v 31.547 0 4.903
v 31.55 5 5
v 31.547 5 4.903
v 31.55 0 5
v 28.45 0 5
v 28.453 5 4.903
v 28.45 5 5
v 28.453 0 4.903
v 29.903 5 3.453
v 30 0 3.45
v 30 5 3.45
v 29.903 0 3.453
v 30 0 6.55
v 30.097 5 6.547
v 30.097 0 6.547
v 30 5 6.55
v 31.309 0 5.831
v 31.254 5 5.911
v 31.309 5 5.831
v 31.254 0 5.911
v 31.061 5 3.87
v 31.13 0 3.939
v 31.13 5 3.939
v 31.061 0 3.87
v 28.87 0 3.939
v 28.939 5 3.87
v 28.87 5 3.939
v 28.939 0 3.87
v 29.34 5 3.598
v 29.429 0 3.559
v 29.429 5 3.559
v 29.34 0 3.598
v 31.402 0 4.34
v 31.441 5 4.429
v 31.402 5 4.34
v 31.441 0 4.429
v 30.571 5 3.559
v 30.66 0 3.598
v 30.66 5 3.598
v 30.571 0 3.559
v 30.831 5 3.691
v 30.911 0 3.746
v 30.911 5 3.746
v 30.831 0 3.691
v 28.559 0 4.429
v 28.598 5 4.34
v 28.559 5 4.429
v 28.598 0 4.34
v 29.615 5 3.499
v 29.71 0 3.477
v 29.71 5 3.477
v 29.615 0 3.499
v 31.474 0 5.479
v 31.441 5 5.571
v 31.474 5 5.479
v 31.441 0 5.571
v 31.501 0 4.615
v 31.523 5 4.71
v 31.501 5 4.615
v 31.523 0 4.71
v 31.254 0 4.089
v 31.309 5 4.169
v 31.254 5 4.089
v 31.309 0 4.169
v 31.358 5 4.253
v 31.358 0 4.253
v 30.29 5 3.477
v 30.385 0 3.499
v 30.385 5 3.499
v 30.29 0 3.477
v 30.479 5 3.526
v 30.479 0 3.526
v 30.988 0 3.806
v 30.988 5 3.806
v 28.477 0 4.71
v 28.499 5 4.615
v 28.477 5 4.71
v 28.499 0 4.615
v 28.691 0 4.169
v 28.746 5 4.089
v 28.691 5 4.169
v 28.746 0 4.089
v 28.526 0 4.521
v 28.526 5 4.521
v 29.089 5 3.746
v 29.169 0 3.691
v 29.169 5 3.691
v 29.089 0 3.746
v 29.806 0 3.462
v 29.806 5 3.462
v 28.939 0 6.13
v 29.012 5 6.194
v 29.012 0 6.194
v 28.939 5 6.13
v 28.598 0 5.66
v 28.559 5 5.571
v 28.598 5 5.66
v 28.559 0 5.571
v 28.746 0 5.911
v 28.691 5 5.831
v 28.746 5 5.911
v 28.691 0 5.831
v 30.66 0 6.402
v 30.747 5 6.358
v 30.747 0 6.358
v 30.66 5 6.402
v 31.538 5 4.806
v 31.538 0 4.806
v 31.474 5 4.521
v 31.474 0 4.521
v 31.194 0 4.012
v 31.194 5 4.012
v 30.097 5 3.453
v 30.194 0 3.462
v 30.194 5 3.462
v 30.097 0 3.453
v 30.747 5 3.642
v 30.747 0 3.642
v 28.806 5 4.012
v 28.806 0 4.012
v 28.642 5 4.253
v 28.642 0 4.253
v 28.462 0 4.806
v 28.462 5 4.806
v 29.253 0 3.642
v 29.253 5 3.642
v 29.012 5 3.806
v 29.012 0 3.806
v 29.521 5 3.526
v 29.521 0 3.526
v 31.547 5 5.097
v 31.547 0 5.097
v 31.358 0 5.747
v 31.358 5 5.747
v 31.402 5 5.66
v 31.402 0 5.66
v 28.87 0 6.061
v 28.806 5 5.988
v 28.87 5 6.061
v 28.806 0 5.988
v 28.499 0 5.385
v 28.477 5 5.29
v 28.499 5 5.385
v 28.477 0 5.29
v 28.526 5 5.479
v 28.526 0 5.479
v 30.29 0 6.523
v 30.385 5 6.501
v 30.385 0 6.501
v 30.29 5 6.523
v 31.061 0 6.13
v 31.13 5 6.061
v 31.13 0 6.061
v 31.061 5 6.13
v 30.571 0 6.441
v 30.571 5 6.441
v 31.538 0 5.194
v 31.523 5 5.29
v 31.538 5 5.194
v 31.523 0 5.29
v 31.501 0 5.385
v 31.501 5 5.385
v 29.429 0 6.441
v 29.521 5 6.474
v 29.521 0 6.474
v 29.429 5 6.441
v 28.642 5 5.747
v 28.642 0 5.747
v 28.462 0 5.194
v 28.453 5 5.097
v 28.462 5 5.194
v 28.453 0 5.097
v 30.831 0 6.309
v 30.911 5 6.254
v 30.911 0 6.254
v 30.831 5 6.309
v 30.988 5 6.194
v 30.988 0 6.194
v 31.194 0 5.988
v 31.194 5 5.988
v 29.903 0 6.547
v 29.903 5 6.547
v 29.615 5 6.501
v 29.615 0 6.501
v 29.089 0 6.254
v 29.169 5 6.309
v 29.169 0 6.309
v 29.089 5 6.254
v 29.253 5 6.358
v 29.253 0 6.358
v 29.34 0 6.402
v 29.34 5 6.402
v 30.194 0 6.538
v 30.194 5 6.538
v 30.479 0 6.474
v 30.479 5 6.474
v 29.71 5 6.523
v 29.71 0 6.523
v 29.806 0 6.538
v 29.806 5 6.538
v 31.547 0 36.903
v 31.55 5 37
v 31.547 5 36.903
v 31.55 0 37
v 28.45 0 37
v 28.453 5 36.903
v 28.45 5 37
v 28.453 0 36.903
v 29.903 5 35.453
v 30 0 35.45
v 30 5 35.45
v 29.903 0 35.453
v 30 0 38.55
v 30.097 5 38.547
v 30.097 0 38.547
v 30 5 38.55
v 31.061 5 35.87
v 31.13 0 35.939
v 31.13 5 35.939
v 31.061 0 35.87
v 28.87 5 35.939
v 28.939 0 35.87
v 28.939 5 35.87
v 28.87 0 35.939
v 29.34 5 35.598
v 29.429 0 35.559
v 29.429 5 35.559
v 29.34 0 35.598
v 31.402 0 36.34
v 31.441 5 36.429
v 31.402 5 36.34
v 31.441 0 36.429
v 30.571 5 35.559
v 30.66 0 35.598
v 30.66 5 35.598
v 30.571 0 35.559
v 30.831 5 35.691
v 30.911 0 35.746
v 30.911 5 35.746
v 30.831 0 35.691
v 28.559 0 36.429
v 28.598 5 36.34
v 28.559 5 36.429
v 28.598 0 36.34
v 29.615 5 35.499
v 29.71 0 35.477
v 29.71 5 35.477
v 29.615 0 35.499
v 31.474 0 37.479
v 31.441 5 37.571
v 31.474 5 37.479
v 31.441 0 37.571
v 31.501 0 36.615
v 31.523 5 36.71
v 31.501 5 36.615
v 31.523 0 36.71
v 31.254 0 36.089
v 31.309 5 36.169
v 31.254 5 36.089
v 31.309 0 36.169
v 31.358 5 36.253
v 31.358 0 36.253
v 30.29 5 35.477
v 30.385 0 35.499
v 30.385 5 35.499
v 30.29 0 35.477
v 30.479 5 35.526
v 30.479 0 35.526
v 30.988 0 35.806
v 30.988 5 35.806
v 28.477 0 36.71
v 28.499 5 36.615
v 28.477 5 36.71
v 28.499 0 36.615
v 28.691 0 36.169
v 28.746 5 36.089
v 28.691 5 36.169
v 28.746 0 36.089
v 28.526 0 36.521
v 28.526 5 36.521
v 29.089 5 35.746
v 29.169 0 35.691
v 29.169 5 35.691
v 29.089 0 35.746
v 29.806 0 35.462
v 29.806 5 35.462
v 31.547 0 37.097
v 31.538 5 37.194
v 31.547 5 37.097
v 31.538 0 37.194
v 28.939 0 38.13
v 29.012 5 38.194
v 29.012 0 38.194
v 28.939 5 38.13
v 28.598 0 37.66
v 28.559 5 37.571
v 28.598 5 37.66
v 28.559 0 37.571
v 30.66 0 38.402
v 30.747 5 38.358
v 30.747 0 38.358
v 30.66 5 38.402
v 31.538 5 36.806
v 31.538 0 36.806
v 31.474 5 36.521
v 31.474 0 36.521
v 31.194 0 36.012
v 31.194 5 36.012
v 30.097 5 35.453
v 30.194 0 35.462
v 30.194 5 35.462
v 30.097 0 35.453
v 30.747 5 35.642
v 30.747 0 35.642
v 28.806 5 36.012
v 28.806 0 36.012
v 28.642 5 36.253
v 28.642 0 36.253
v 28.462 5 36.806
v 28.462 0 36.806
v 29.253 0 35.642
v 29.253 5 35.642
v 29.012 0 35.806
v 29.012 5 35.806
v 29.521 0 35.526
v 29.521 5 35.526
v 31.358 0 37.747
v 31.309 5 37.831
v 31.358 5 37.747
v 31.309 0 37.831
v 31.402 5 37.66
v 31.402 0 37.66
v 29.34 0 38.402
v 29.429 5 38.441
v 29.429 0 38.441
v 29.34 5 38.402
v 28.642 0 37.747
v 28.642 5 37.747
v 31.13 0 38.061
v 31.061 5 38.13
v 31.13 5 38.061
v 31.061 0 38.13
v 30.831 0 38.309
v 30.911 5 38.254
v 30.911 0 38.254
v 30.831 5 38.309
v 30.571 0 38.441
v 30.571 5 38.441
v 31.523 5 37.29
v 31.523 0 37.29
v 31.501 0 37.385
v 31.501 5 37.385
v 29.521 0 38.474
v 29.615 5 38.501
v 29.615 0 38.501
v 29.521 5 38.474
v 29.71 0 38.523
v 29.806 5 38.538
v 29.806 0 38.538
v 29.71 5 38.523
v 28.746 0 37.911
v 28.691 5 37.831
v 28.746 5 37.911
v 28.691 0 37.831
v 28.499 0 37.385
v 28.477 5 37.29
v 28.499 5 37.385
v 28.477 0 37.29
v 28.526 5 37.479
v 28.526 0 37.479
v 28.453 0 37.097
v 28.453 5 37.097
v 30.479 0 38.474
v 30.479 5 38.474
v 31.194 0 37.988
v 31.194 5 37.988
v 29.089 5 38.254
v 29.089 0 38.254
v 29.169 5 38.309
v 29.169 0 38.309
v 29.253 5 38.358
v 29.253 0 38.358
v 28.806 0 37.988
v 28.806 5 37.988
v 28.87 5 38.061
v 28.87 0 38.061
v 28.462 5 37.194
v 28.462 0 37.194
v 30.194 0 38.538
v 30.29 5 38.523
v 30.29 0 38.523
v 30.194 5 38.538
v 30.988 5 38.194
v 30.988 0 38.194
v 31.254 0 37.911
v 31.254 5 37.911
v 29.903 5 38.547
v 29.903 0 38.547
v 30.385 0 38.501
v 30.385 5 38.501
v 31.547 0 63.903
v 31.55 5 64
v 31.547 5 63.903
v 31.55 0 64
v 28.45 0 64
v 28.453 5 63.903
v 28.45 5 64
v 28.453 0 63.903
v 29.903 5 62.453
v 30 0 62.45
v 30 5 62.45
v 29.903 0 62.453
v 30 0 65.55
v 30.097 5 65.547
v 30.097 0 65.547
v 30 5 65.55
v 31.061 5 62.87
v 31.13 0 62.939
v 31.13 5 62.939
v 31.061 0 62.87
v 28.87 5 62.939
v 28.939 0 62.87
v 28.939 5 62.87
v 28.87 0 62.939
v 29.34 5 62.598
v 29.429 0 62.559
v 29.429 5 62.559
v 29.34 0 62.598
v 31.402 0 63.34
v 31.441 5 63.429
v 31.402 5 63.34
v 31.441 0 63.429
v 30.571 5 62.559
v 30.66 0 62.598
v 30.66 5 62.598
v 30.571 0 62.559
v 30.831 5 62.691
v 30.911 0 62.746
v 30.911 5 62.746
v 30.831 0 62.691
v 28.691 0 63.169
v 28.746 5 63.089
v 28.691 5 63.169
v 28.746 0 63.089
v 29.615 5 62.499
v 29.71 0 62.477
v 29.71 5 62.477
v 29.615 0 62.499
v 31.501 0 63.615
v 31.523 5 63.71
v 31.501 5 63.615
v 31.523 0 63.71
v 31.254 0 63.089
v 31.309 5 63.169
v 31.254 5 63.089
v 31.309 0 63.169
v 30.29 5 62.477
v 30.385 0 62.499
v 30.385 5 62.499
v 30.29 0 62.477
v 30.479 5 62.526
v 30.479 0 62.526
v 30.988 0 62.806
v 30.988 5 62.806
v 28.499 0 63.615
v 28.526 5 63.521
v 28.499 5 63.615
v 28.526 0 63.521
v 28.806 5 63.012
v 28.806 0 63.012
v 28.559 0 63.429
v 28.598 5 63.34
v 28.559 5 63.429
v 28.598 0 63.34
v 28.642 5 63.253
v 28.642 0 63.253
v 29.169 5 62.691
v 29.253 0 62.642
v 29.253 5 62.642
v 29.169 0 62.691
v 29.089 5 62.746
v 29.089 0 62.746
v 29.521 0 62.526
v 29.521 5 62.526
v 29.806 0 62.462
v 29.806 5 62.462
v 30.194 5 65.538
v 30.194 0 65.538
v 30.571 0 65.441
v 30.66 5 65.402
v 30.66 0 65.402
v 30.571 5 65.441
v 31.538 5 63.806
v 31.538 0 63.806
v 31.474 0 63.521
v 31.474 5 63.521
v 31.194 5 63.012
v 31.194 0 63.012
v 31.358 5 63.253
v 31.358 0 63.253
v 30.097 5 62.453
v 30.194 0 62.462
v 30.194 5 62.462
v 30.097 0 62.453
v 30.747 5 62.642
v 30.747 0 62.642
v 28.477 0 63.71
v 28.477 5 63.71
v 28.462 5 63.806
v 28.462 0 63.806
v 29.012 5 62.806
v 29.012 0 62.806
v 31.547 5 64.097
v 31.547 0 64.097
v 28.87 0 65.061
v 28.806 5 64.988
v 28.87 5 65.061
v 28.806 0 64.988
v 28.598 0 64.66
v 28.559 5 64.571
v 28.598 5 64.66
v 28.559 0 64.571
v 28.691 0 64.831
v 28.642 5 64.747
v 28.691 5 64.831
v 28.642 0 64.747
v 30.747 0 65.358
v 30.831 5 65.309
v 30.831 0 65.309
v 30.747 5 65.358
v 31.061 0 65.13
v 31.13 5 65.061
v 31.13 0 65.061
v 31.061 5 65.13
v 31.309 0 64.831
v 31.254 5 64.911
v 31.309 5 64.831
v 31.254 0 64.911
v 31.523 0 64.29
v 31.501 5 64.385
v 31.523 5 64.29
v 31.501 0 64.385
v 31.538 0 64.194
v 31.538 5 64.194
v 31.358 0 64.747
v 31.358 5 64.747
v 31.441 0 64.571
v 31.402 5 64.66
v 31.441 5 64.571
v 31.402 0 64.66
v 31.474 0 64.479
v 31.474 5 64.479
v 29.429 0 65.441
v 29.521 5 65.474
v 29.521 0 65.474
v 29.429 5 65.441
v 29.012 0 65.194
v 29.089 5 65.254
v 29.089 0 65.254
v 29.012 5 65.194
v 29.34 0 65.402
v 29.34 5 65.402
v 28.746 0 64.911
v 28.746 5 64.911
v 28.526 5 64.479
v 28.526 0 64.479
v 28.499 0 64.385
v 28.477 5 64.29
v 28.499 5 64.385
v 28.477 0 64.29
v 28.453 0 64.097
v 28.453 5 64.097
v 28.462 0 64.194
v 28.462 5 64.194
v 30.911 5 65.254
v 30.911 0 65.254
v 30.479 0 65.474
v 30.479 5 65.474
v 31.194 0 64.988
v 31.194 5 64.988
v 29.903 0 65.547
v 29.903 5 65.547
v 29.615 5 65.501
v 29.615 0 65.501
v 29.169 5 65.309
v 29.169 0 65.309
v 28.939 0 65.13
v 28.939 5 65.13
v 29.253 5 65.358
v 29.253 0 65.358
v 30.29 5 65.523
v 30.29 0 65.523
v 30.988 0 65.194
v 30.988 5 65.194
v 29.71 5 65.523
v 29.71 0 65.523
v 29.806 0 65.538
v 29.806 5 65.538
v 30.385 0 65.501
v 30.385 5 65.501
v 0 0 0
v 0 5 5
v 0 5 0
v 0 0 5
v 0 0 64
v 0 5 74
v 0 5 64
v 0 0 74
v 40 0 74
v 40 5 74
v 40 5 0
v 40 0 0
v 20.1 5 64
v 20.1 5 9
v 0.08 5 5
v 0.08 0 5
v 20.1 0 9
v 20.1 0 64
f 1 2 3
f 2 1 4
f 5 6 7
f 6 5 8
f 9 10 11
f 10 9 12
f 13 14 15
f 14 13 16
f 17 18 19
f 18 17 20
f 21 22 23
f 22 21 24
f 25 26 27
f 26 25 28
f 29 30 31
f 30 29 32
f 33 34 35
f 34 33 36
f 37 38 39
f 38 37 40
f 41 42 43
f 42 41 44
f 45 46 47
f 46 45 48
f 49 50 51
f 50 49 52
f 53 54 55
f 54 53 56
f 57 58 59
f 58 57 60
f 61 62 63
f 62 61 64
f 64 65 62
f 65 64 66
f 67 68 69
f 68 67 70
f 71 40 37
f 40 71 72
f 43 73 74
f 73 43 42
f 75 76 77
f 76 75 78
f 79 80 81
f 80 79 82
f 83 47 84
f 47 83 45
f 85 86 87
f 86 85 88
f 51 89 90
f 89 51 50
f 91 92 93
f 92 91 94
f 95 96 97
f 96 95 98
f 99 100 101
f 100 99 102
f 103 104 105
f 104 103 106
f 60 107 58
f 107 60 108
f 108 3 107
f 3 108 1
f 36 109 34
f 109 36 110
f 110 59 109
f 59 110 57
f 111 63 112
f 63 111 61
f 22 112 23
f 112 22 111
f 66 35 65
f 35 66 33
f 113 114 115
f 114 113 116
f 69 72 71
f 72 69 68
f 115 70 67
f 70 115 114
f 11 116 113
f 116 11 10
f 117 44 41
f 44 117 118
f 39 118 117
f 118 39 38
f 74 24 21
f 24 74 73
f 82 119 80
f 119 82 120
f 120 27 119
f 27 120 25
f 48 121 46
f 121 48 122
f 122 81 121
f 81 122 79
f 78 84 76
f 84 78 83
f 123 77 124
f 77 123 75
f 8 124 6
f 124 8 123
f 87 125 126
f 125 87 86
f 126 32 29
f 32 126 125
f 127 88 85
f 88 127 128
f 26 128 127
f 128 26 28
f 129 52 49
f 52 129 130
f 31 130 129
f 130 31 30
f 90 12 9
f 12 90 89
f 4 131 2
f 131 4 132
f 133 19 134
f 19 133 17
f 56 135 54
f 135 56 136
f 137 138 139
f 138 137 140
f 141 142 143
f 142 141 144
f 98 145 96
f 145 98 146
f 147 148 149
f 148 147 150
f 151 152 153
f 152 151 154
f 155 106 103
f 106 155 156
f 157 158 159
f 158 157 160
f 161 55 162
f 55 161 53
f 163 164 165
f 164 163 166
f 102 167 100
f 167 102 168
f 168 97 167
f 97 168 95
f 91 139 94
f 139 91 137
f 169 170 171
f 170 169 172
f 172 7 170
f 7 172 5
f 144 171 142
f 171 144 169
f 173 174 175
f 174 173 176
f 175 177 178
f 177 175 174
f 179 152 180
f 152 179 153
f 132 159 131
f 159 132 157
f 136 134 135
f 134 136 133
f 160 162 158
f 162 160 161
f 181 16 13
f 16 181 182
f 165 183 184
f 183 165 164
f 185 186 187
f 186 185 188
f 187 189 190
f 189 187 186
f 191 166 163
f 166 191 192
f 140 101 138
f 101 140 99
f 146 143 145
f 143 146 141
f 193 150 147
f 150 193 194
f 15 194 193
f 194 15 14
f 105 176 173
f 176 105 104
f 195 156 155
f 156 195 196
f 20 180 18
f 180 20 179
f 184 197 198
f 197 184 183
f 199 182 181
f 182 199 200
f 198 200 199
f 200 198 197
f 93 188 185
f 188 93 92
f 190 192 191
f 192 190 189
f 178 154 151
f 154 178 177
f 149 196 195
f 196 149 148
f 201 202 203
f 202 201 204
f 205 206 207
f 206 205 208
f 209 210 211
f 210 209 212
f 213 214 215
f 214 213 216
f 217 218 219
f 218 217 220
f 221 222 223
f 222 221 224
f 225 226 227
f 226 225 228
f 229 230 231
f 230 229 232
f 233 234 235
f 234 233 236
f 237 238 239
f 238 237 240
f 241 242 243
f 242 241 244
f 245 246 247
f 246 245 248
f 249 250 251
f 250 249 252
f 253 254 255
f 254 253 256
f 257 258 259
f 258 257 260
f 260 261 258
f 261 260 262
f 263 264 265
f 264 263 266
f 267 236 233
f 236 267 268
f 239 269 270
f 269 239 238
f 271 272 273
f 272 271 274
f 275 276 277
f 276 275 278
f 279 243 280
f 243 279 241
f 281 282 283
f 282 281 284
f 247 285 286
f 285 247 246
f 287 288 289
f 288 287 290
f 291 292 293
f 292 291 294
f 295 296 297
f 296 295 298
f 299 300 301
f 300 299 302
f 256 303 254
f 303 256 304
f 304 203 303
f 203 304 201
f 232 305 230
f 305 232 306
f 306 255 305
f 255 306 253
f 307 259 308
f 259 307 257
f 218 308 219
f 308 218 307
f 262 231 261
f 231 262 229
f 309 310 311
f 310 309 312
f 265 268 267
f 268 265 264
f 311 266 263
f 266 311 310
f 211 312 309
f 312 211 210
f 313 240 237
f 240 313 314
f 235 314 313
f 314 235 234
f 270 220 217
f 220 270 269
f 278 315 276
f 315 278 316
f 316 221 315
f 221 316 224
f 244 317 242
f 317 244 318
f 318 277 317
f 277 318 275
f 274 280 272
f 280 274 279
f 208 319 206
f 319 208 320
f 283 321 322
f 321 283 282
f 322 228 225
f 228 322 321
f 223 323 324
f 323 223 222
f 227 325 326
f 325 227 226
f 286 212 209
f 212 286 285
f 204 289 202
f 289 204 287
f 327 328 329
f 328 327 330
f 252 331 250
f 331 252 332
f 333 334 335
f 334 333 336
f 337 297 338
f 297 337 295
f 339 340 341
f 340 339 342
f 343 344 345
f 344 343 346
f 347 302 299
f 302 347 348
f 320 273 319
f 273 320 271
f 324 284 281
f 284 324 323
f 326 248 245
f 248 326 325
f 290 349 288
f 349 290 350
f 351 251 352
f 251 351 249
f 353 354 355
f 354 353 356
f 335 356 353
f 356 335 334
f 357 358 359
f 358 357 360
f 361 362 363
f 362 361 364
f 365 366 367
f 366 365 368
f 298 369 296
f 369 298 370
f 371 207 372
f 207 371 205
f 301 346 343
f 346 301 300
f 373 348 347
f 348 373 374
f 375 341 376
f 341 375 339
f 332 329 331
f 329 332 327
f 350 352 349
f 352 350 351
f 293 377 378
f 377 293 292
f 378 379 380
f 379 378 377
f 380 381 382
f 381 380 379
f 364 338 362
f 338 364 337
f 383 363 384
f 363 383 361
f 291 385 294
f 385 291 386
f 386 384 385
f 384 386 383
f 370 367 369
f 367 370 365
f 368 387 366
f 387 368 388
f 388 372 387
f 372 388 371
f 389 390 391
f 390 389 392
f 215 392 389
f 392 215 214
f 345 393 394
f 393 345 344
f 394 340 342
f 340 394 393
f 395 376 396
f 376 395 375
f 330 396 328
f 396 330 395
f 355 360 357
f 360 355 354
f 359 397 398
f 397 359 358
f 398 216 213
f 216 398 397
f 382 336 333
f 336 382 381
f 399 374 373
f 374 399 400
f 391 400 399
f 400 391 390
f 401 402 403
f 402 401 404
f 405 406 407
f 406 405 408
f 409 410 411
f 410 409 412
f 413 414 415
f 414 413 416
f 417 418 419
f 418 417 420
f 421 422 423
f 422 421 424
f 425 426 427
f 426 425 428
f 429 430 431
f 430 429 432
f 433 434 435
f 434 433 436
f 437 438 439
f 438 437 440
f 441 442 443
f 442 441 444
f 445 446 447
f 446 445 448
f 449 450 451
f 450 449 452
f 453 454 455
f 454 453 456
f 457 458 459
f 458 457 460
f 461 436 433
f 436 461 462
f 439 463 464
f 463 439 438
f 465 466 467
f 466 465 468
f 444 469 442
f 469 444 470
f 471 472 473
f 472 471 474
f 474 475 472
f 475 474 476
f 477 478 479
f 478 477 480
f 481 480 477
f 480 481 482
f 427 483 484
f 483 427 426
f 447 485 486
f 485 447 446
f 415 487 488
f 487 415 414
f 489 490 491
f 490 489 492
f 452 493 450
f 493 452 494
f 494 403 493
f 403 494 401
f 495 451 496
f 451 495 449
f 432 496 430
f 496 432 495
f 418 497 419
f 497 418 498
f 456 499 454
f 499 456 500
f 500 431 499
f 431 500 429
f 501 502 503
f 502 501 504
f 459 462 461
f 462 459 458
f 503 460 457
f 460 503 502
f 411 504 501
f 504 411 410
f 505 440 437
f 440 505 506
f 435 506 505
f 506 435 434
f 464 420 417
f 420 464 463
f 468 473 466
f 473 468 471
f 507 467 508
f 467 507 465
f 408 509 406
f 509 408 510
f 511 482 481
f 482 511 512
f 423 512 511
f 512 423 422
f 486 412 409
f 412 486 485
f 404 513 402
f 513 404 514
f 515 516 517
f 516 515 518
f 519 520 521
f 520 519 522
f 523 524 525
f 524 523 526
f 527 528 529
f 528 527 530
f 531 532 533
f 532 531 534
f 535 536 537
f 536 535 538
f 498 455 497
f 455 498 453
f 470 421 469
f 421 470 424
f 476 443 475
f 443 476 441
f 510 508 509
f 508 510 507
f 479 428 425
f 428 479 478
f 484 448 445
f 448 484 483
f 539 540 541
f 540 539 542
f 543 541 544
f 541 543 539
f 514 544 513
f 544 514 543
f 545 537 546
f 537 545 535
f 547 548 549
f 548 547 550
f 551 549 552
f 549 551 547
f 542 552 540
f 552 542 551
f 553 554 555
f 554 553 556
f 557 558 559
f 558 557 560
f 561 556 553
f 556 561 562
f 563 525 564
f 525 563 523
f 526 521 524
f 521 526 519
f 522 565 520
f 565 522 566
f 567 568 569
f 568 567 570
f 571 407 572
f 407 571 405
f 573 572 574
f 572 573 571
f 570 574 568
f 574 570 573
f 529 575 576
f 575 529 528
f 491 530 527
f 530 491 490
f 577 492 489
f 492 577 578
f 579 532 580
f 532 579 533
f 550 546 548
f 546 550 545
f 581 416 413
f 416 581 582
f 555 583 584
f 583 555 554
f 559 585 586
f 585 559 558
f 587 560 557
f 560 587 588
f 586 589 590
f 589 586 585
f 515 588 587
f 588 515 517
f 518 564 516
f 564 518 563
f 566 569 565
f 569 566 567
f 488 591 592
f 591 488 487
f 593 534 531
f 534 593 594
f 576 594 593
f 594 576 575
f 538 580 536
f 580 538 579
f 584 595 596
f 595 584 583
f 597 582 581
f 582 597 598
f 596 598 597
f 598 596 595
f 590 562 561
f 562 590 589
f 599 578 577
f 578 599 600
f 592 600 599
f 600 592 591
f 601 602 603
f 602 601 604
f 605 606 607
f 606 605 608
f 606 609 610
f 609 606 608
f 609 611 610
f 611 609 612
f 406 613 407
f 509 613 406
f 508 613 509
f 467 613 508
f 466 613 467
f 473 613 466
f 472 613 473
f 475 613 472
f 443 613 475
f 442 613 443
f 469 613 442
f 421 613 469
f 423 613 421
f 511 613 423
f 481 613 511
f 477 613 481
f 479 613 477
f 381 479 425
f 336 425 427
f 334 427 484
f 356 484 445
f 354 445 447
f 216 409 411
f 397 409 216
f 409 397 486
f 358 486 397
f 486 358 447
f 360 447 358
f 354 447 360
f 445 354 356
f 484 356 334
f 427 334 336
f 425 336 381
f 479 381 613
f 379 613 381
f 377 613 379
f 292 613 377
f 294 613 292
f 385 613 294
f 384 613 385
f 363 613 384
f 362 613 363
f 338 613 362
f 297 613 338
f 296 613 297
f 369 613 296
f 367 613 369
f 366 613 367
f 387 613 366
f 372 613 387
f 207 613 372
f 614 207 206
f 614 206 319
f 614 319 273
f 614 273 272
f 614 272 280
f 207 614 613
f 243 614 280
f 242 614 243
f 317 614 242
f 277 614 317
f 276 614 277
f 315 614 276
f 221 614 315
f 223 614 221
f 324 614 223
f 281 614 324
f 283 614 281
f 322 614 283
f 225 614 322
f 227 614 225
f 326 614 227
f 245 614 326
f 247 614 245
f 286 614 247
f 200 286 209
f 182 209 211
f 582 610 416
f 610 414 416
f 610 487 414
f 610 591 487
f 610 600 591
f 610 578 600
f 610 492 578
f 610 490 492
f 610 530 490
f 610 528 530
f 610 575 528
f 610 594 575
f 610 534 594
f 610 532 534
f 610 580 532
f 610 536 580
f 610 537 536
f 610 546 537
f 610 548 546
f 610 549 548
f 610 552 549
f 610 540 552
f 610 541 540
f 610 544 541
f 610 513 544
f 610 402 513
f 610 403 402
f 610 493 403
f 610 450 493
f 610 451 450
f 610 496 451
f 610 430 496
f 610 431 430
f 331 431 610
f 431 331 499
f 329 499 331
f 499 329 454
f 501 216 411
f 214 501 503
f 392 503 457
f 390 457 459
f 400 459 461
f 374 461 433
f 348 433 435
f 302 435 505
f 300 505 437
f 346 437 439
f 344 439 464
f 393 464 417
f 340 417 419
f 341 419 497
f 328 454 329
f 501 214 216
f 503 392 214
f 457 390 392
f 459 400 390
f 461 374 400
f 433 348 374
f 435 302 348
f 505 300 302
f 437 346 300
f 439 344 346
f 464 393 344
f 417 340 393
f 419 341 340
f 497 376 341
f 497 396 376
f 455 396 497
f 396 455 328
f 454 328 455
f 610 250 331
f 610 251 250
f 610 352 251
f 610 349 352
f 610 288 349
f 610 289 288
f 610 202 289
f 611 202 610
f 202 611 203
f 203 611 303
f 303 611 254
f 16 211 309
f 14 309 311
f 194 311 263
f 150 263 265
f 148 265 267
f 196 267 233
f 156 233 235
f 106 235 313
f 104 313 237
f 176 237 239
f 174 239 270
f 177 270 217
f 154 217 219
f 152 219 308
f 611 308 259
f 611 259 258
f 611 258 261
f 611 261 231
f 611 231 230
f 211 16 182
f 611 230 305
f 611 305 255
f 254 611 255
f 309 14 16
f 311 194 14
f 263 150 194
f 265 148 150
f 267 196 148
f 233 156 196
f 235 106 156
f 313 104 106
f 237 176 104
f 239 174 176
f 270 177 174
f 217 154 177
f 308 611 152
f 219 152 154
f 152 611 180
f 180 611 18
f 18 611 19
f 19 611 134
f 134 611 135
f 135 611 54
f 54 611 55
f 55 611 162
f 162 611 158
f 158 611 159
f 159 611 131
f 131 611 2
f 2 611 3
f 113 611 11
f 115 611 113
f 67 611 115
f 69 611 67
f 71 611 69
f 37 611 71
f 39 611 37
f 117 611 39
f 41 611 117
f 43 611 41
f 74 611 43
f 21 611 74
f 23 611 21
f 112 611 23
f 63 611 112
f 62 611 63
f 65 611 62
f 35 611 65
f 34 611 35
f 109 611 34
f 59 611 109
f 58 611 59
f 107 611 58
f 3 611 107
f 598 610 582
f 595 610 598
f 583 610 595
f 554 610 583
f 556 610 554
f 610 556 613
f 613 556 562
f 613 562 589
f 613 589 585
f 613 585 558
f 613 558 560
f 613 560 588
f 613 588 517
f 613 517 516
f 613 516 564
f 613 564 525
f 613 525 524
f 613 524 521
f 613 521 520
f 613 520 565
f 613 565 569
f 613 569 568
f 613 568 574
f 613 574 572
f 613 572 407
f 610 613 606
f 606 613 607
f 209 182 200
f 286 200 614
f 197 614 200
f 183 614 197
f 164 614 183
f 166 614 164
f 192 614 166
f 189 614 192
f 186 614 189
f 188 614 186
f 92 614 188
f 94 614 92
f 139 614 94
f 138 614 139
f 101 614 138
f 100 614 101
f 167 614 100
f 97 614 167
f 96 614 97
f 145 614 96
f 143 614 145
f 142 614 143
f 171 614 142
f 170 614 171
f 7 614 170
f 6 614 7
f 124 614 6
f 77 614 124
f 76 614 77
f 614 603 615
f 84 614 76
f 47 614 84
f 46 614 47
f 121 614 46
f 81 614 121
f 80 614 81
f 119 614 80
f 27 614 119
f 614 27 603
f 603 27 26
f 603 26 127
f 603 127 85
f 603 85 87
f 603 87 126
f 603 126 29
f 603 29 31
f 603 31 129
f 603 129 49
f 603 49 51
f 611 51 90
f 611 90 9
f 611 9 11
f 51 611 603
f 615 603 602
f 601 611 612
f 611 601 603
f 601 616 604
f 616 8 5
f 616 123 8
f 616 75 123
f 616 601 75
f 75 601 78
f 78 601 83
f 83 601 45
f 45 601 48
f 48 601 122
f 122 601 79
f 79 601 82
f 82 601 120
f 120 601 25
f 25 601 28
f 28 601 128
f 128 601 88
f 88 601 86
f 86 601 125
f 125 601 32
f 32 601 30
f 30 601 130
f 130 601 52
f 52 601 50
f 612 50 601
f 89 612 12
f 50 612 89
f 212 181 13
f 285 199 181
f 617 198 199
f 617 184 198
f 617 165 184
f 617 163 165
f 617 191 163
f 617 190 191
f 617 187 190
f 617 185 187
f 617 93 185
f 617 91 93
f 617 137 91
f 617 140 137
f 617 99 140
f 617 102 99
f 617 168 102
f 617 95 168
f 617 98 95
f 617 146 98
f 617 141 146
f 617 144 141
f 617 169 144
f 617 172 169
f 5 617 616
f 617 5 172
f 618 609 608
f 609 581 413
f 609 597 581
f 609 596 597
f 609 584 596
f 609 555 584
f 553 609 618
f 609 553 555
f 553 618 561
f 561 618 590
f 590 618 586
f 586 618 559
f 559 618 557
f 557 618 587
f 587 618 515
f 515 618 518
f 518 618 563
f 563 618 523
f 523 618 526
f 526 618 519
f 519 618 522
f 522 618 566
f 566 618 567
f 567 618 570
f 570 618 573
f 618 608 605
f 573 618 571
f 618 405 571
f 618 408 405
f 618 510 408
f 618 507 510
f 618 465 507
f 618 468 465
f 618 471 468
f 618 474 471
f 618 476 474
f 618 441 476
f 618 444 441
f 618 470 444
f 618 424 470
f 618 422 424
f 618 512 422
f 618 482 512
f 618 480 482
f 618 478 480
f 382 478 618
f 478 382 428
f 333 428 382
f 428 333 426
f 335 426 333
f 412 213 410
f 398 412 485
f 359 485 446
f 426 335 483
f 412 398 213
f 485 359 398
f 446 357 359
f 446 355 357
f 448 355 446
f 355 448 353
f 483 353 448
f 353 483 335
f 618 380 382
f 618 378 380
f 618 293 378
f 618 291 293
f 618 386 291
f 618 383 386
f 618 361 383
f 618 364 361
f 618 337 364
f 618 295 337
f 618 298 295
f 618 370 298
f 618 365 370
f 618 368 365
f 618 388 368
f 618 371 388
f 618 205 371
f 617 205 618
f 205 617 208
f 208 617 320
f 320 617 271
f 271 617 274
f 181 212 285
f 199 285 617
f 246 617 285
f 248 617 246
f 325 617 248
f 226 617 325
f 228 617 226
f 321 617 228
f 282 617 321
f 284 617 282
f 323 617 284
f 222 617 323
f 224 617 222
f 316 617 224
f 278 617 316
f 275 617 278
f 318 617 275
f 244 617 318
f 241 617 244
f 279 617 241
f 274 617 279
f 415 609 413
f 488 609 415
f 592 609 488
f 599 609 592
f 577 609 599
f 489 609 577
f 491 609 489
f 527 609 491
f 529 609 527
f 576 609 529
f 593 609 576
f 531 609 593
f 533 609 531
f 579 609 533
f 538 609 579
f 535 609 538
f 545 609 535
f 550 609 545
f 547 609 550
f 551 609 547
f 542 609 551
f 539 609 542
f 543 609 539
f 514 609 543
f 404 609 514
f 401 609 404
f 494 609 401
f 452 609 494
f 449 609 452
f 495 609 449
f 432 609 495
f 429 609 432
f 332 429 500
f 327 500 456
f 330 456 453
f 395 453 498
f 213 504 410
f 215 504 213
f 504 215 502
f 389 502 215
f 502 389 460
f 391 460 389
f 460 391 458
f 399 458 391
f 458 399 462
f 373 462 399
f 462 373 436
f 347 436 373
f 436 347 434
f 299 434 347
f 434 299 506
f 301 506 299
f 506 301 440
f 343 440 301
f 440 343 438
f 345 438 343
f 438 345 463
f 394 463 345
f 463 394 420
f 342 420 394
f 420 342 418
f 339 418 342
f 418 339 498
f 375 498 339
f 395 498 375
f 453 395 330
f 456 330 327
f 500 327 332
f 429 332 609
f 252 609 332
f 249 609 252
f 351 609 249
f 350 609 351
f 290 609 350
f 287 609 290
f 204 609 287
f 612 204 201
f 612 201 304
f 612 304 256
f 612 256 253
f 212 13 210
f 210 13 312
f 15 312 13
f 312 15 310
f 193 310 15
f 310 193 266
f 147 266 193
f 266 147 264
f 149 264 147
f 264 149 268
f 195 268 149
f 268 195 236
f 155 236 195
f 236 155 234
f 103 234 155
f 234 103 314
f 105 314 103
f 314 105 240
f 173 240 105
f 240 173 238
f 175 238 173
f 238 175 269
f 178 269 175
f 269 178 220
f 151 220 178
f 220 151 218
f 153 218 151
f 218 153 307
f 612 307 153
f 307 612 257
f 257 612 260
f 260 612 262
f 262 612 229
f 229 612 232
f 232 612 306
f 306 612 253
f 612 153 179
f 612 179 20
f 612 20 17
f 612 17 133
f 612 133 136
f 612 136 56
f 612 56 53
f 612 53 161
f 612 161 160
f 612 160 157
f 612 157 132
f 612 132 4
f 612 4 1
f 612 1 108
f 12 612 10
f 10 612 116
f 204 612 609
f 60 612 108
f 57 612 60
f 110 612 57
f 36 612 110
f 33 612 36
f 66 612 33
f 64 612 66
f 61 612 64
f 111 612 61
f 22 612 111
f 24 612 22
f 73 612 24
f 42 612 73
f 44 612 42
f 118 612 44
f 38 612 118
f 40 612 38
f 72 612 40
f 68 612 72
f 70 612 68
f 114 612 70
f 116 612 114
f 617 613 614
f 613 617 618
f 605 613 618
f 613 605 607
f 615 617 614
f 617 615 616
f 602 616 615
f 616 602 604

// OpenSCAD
$fn=100;
extra=0.02;

diaBladeTop = 19.6;
wall=3;
height = 20;
diaTemp=diaBladeTop+wall*2;
bladeXmov=2;

mountHoleDia = 15.65;
mountHoleDiaTol = 0.2;
mountHoleHeight = 15;

ScrewInsertM3 = 4.5;

enCarrPlate = true;
enPlateCutout = true;

//MGN9-H holes
mgn9h_b_dist = 15;
mgn9h_c_dist = 16;
carrWall = 4;
carrH = 25;
carrHoles = 3.1;
// translate([-carrWall,-diaTemp/2,0]) 
// carrPlate();
module carrPlate()
{
    difference()
    {
        hull()
        {
            translate([0,0,carrWall])
            cube([0.1,diaTemp,height+carrH-carrWall]);
            translate([carrWall-0.1,0,0]) 
            cube([0.1,diaTemp,height+carrH]);
        }
        if(enPlateCutout)
        {
            translate([0,0,height+carrH-10])
            cube([1,diaTemp,10]);
        }

        translate([0,diaTemp/2-mgn9h_b_dist/2,height+carrH-mgn9h_c_dist-5]) 
        union()
        {
            translate([-extra,0,0]) 
            rotate([0,90,0])
            cylinder(h = carrWall+extra*2, d = carrHoles);
            translate([-extra,0,mgn9h_c_dist]) 
            rotate([0,90,0])
            cylinder(h = carrWall+extra*2, d = carrHoles);
            translate([-extra,mgn9h_b_dist,mgn9h_c_dist]) 
            rotate([0,90,0])
            cylinder(h = carrWall+extra*2, d = carrHoles);
            translate([-extra,mgn9h_b_dist,0]) 
            rotate([0,90,0])
            cylinder(h = carrWall+extra*2, d = carrHoles);
        }
        translate([0,diaTemp/2,height+carrH-3]) 
        translate([-extra,0,0]) 
            rotate([0,90,0])
            cylinder(h = carrWall+extra*2, d = 2.9);
    }
}

// translate([0,diaTemp/2,0]) 
// autoblade_adapter();

module autoblade_adapter()
{
    difference()
    {
        union()
        {
            translate([bladeXmov+diaTemp/2,0,0]) 
            cylinder(d=diaBladeTop+wall*2,h=height);

            translate([0,-diaTemp/2,0]) 
            cube([diaTemp/2+bladeXmov, diaTemp, height]);

            translate([diaTemp,-8/2,0]) 
            hull()
            {
                cube([0.1,8,height]);
                translate([4,0,4]) 
                cube([0.1,8,height-8]);
            }
            if(enCarrPlate)
            {
                translate([-carrWall,-diaTemp/2,0]) 
                carrPlate();
            }
        }
        translate([0,0,mountHoleHeight]) 
        union()
        {
            translate([bladeXmov+diaTemp/2,0,extra]) 
            cylinder(d=diaBladeTop,h=height);

            translate([diaBladeTop/4-1,-diaBladeTop/2,0]) 
            cube([diaBladeTop/2+1, diaBladeTop, height+extra*2]);
        }

        translate([bladeXmov+diaTemp/2,0,-extra]) 
            cylinder(d=mountHoleDia,h=height);

        translate([bladeXmov+diaTemp/2-1-mountHoleDia/2,-4.6/2,-extra]) 
        cube([2,4.6,mountHoleHeight+extra*2]);

        translate([15,0,mountHoleHeight/2]) 
        rotate([0,90,0])
        cylinder(d=ScrewInsertM3,h=30);        
    }
}

baseWidth = 20;
lowerBorder = 5;
upperBorder = 10;
trigThick = 5;
trigWidth = 20;

bladeTopToAdapterBottom = 43;
adBtmToTip = 16; 
adBtmToReset = 12;

longSide = bladeTopToAdapterBottom + adBtmToTip;
shortSide = bladeTopToAdapterBottom + adBtmToReset;

trigHeight = longSide+upperBorder+lowerBorder;

screwHoleLoose = 3.1;

autoTrigger();
module autoTrigger()
{
    difference() 
    {
        cube([baseWidth+trigWidth,trigThick,trigHeight]);
        
        translate([0,-extra,0]) 
        hull()
        {
            translate([-extra,0,trigHeight-longSide-upperBorder]) 
            cube([0.1,trigThick+extra*2,longSide]);

            translate([trigWidth,0,trigHeight-shortSide-upperBorder]) 
            cube([0.1,trigThick+extra*2,shortSide]);
        
        }


        translate([trigWidth,0,0]) 
            autoTriggerScrewLayout();

    }
}


module autoTriggerScrewLayout()
{
    {
        #translate([baseWidth/2,-extra,lowerBorder]) 
        rotate([-90,0,0]) 
        cylinder(d=screwHoleLoose, h=trigThick+extra*2);

        translate([baseWidth/2,-extra,trigHeight/2]) 
        rotate([-90,0,0]) 
        cylinder(d=screwHoleLoose, h=trigThick+extra*2);

        translate([baseWidth/2,-extra,trigHeight-upperBorder]) 
        rotate([-90,0,0]) 
        cylinder(d=screwHoleLoose, h=trigThick+extra*2);


    }
}
